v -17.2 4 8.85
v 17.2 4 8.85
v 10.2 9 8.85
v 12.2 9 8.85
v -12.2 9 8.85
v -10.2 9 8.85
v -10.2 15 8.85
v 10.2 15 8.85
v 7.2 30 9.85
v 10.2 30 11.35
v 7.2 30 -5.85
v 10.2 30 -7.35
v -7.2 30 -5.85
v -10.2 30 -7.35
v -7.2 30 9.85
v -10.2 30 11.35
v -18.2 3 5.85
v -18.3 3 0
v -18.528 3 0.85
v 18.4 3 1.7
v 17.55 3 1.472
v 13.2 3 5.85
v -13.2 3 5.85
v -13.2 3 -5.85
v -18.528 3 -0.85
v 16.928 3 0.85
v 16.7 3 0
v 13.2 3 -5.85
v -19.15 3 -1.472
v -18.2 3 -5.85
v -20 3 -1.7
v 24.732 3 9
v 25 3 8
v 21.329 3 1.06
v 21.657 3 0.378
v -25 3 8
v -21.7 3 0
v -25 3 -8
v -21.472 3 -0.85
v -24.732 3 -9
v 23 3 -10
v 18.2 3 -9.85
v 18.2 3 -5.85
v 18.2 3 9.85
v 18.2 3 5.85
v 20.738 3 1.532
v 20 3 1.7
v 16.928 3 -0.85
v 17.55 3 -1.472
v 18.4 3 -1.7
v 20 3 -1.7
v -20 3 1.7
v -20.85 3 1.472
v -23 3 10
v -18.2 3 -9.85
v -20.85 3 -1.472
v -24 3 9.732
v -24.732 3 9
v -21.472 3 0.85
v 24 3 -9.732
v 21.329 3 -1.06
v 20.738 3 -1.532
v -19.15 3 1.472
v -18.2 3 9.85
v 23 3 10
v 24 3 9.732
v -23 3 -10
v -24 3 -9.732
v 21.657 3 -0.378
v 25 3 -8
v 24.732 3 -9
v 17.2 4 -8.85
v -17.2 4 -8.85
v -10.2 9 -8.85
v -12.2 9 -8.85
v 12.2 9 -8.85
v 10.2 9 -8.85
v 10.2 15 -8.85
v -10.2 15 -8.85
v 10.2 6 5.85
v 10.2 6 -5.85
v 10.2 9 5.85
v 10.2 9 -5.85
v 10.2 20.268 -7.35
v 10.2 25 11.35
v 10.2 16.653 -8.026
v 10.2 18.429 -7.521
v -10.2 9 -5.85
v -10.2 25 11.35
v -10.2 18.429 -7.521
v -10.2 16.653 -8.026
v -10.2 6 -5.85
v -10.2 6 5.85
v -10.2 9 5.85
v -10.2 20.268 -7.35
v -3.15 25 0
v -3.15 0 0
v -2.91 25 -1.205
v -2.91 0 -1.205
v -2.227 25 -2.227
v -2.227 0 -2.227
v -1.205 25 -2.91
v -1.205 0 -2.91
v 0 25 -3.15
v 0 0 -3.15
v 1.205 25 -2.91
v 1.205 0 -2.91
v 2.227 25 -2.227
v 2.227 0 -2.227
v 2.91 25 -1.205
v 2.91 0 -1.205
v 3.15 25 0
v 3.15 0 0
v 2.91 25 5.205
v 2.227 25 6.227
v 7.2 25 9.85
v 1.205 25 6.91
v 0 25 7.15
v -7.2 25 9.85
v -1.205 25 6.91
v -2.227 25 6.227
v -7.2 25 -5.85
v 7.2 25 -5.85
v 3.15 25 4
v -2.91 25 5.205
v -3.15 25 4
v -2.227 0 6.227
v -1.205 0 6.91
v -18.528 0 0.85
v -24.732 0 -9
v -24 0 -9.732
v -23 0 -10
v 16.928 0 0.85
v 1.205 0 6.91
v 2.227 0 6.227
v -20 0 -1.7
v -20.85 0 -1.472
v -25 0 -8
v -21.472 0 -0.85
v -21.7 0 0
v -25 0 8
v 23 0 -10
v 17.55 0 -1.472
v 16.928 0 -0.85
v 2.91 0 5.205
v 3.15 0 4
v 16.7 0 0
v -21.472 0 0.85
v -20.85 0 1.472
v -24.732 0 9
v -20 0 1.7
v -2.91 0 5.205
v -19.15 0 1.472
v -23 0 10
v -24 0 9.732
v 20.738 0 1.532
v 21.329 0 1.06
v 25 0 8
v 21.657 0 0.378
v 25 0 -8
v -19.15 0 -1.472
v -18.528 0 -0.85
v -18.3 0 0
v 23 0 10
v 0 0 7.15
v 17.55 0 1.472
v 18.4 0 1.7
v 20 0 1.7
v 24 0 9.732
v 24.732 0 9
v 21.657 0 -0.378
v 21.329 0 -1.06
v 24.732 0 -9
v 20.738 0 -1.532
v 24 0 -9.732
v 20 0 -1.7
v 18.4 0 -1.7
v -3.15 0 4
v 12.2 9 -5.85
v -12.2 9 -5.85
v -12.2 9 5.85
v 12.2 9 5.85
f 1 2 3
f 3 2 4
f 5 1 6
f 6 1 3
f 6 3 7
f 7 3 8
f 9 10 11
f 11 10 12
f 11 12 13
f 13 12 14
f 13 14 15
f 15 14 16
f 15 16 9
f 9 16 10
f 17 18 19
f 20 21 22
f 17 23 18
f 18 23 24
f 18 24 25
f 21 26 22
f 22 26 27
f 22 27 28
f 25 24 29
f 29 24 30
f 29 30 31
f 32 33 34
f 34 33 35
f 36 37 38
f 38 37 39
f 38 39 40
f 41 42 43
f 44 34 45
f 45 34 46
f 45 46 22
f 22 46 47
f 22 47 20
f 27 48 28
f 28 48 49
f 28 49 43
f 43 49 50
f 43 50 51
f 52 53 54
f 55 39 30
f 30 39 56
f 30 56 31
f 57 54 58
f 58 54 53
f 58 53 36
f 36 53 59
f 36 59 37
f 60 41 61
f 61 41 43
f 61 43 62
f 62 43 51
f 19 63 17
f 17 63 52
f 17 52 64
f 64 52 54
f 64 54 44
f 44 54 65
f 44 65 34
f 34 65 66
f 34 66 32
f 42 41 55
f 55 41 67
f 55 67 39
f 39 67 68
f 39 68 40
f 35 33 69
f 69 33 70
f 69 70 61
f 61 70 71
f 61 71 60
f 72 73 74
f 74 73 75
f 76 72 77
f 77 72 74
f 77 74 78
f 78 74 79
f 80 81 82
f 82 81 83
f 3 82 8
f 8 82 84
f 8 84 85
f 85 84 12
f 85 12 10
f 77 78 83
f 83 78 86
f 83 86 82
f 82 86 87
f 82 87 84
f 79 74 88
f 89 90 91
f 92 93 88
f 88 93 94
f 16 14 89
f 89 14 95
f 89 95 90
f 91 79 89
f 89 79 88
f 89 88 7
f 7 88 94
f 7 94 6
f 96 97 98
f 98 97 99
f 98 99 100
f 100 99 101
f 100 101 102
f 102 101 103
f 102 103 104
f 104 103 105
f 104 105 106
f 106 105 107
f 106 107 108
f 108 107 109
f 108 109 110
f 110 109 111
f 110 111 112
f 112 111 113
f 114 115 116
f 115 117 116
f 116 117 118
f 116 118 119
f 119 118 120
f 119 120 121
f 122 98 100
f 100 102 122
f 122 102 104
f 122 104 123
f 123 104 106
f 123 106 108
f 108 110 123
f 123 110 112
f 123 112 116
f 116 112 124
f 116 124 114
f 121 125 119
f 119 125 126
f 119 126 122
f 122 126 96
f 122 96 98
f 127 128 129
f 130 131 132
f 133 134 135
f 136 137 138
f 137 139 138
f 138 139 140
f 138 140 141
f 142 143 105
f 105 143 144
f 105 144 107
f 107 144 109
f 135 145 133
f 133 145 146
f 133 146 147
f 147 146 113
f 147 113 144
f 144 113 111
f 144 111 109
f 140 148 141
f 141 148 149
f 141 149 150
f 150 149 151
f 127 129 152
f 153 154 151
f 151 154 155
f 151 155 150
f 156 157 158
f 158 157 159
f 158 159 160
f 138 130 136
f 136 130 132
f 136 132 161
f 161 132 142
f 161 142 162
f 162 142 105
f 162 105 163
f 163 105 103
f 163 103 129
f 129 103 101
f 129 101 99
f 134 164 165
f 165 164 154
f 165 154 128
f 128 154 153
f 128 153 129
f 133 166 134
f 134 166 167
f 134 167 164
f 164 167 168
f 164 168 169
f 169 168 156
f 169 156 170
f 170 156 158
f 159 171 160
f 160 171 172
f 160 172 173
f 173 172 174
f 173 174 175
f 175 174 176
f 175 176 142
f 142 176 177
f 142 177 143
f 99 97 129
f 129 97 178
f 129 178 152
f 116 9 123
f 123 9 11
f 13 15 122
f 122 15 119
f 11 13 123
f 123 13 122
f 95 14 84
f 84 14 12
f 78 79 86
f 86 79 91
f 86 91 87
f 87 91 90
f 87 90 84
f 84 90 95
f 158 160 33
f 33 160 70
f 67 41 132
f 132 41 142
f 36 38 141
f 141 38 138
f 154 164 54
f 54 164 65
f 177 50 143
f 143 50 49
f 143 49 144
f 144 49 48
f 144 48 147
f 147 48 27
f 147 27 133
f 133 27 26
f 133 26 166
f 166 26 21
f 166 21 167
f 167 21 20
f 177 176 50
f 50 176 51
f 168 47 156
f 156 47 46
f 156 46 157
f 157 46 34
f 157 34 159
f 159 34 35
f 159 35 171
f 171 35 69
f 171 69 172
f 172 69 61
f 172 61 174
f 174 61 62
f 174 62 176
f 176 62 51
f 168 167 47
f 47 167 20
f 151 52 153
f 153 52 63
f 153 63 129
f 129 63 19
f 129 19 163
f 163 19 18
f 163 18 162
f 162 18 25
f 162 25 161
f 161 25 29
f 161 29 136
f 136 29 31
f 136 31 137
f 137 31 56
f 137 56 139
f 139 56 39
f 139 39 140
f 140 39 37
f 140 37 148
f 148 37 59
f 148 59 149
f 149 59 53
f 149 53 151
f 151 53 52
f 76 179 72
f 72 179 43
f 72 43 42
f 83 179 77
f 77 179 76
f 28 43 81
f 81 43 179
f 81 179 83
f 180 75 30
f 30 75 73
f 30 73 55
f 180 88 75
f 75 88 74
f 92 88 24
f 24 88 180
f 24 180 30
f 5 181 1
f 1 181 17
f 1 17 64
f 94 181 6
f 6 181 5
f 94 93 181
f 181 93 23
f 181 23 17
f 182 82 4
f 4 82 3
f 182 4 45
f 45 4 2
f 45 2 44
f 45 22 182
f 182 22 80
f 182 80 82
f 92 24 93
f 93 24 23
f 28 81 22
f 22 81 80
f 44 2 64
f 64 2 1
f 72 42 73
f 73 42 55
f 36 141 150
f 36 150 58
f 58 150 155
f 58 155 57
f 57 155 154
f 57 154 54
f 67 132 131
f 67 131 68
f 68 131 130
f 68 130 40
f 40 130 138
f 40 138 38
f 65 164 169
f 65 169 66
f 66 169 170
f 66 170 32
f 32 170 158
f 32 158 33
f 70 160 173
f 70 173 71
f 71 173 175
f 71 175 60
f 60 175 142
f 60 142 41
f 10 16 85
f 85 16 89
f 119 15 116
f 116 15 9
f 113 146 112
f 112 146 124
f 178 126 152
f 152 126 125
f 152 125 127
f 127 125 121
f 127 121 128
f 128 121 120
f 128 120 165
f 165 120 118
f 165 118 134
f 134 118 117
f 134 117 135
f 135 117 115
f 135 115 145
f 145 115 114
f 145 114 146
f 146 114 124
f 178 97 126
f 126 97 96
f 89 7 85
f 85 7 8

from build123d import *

# Parameters (mm, degrees)
SKETCH1_W               = 20.4
SKETCH1_H               = 17.7
SKETCH1_W_2             = 14.4
SKETCH1_H_2             = 11.7
SKETCH1_R               = 3.15
BOSS_EXTRUDE1_DEPTH     = 25
SKETCH1_3_W             = 20.4
SKETCH1_3_H             = 17.7
SKETCH1_3_W_2           = 14.4
SKETCH1_3_H_2           = 11.7
BOSS_EXTRUDE2_DEPTH     = 30
SKETCH2_W               = 22.449827962
SKETCH2_H               = 3
CUT_EXTRUDE1_DEPTH      = 15
FILLET1_R               = 10
SKETCH3_W               = 50
SKETCH3_H               = 20
SKETCH3_R               = 3.15
BOSS_EXTRUDE3_DEPTH     = 3
SKETCH4_R               = 1.7
CUT_EXTRUDE2_DEPTH      = 39.13135193
BOSS_EXTRUDE4_DEPTH     = 3
BOSS_EXTRUDE5_DEPTH     = 3
CHAMFER1_SIZE           = 3
CHAMFER2_SIZE           = 1
FILLET3_R               = 2
SKETCH7_W               = 14.4
SKETCH7_H               = 3
CUT_EXTRUDE3_DEPTH      = 5
BOSS_EXTRUDE6_DEPTH     = 5
CUT_EXTRUDE4_DEPTH      = 38.132499243
CUT_EXTRUDE4_DEPTH_BACK = 38.132499243
BOSS_EXTRUDE7_DEPTH     = 20.4


with BuildPart() as part:
    # Sketch1 → Boss-Extrude1 (new body)
    # profile 1 of 2: a face of its own
    with BuildSketch(Plane(origin=(0, 0, 0), x_dir=(1, 0, 0), z_dir=(0, 1, 0))):
        Rectangle(SKETCH1_W, SKETCH1_H)
        Rectangle(SKETCH1_W_2, SKETCH1_H_2, mode=Mode.SUBTRACT)
    # profile 2 of 2: a face of its own
    with BuildSketch(Plane(origin=(0, 0, 0), x_dir=(1, 0, 0), z_dir=(0, 1, 0))):
        Rectangle(SKETCH1_W_2, SKETCH1_H_2)
        with Locations(Location((0, 0, 0), (0, 0, 270))):
            Circle(SKETCH1_R, mode=Mode.SUBTRACT)
    extrude(amount=BOSS_EXTRUDE1_DEPTH)

    # Sketch1<3> → Boss-Extrude2 (add)
    with BuildSketch(Plane(origin=(0, 0, 0), x_dir=(1, 0, 0), z_dir=(0, 1, 0))):
        Rectangle(SKETCH1_3_W, SKETCH1_3_H)
        Rectangle(SKETCH1_3_W_2, SKETCH1_3_H_2, mode=Mode.SUBTRACT)
    extrude(amount=BOSS_EXTRUDE2_DEPTH)

    # Sketch2 → Cut-Extrude1 (cut)
    with BuildSketch(Plane(origin=(0, 30, 0), x_dir=(1, 0, 0), z_dir=(0, 1, 0))):
        with Locations((0, 8.85)):
            Rectangle(SKETCH2_W, SKETCH2_H)
    extrude(amount=-CUT_EXTRUDE1_DEPTH, mode=Mode.SUBTRACT)

    # Fillet1
    # the kernel refuses this fillet: 10 mm, written as the material it adds along each edge
    with BuildSketch(Plane(origin=(10.2, 15, -7.35), x_dir=(0, 1, 0), z_dir=(-1, 0, 0))) as fillet1_piece_1:
        with BuildLine():
            CenterArc((5.267826876, 10), FILLET1_R, 238.211669383, 31.788330617)
            Line((0, 1.5), (-0.105356538, 1.33))
            ThreePointArc((-0.105356538, 1.33), (-0.2, 0.75), (-0.2, 0))
            Line((-0.2, 0), (0, -0.2))
            Line((0, -0.2), (5.267826876, -0.2))
            Line((5.267826876, -0.2), (5.267826876, 0))
        make_face()
    extrude(amount=20.4)

    # Sketch3 → Boss-Extrude3 (add)
    with BuildSketch(Plane.XZ):
        Rectangle(SKETCH3_W, SKETCH3_H)
        with Locations(Location((0, 0, 0), (0, 0, 90))):
            Circle(SKETCH3_R, mode=Mode.SUBTRACT)
    extrude(amount=-BOSS_EXTRUDE3_DEPTH)

    # Sketch4 → Cut-Extrude2 (cut, through all)
    with BuildSketch(Plane(origin=(0, 3, 0), x_dir=(1, 0, 0), z_dir=(0, 1, 0))):
        with Locations(Location((-20, 0, 0), (0, 0, 270))):
            Circle(SKETCH4_R)
        with BuildLine():
            Line((18.4, 1.7), (20, 1.7))
            ThreePointArc((20, 1.7), (21.7, 0), (20, -1.7))
            Line((20, -1.7), (18.4, -1.7))
            ThreePointArc((18.4, -1.7), (16.7, 0), (18.4, 1.7))
        make_face()
    extrude(amount=-CUT_EXTRUDE2_DEPTH, mode=Mode.SUBTRACT)

    # Sketch5 → Boss-Extrude4 (add)
    with BuildSketch(Plane(origin=(0, 0, -8.85), x_dir=(-1, 0, 0), z_dir=(0, 0, -1))):
        Polygon((-10.2, 3), (-10.2, 9), (-12.2, 9), (-18.2, 3), align=None)
        Polygon((18.2, 3), (10.2, 3), (10.2, 9), (12.2, 9), align=None)
    extrude(amount=-BOSS_EXTRUDE4_DEPTH)

    # Sketch6 → Boss-Extrude5 (add)
    with BuildSketch(Plane.XY.offset(8.85)):
        Polygon((-18.2, 3), (-10.2, 3), (-10.2, 9), (-12.2, 9), align=None)
        Polygon((10.2, 9), (10.2, 3), (18.2, 3), (12.2, 9), align=None)
    extrude(amount=-BOSS_EXTRUDE5_DEPTH)

    # Chamfer1
    chamfer1_edges = [part.edges().sort_by_distance(p)[0] for p in [
        (-10.2, 3, 0),
        (10.2, 3, 0),
    ]]
    chamfer(chamfer1_edges, length=CHAMFER1_SIZE)

    # Chamfer2
    chamfer2_edges = [part.edges().sort_by_distance(p)[0] for p in [
        (0, 3, -8.85),
        (0, 3, 8.85),
    ]]
    chamfer(chamfer2_edges, length=CHAMFER2_SIZE)

    # Fillet3
    fillet3_edges = [part.edges().sort_by_distance(p)[0] for p in [
        (25, 1.5, 10),
        (25, 1.5, -10),
        (-25, 1.5, -10),
        (-25, 1.5, 10),
    ]]
    fillet(fillet3_edges, radius=FILLET3_R)

    # Sketch7 → Cut-Extrude3 (cut)
    with BuildSketch(Plane(origin=(0, 30, 0), x_dir=(1, 0, 0), z_dir=(0, 1, 0))):
        with Locations((0, -7.35)):
            Rectangle(SKETCH7_W, SKETCH7_H)
    extrude(amount=-CUT_EXTRUDE3_DEPTH, mode=Mode.SUBTRACT)

    # Sketch7<3> → Boss-Extrude6 (add)
    with BuildSketch(Plane(origin=(0, 30, 0), x_dir=(1, 0, 0), z_dir=(0, 1, 0))):
        Polygon((-7.2, -9.85), (-7.2, -8.85), (-10.2, -8.85), (-10.2, -11.35), (10.2, -11.35), (10.2, -8.85), (7.2, -8.85), (7.2, -9.85), align=None)
    extrude(amount=-BOSS_EXTRUDE6_DEPTH)

    # Sketch8 → Cut-Extrude4 (cut, two sides: drawn at the far end of the back side and taken through both)
    with BuildSketch(Plane(origin=(0, 25, 0), x_dir=(1, 0, 0), z_dir=(0, 1, 0)).offset(-CUT_EXTRUDE4_DEPTH_BACK)):
        with BuildLine():
            Line((3.15, 0), (3.15, -4))
            ThreePointArc((3.15, -4), (0, -7.15), (-3.15, -4))
            Line((-3.15, -4), (-3.15, 0))
            ThreePointArc((-3.15, 0), (0, 3.15), (3.15, 0))
        make_face()
    extrude(amount=CUT_EXTRUDE4_DEPTH + CUT_EXTRUDE4_DEPTH_BACK, mode=Mode.SUBTRACT)

    # Sketch9 → Boss-Extrude7 (add)
    with BuildSketch(Plane.ZY.offset(10.2)):
        Polygon((11.35, 25), (8.85, 25), (8.85, 15), align=None)
    extrude(amount=-BOSS_EXTRUDE7_DEPTH)


solid = part.part
